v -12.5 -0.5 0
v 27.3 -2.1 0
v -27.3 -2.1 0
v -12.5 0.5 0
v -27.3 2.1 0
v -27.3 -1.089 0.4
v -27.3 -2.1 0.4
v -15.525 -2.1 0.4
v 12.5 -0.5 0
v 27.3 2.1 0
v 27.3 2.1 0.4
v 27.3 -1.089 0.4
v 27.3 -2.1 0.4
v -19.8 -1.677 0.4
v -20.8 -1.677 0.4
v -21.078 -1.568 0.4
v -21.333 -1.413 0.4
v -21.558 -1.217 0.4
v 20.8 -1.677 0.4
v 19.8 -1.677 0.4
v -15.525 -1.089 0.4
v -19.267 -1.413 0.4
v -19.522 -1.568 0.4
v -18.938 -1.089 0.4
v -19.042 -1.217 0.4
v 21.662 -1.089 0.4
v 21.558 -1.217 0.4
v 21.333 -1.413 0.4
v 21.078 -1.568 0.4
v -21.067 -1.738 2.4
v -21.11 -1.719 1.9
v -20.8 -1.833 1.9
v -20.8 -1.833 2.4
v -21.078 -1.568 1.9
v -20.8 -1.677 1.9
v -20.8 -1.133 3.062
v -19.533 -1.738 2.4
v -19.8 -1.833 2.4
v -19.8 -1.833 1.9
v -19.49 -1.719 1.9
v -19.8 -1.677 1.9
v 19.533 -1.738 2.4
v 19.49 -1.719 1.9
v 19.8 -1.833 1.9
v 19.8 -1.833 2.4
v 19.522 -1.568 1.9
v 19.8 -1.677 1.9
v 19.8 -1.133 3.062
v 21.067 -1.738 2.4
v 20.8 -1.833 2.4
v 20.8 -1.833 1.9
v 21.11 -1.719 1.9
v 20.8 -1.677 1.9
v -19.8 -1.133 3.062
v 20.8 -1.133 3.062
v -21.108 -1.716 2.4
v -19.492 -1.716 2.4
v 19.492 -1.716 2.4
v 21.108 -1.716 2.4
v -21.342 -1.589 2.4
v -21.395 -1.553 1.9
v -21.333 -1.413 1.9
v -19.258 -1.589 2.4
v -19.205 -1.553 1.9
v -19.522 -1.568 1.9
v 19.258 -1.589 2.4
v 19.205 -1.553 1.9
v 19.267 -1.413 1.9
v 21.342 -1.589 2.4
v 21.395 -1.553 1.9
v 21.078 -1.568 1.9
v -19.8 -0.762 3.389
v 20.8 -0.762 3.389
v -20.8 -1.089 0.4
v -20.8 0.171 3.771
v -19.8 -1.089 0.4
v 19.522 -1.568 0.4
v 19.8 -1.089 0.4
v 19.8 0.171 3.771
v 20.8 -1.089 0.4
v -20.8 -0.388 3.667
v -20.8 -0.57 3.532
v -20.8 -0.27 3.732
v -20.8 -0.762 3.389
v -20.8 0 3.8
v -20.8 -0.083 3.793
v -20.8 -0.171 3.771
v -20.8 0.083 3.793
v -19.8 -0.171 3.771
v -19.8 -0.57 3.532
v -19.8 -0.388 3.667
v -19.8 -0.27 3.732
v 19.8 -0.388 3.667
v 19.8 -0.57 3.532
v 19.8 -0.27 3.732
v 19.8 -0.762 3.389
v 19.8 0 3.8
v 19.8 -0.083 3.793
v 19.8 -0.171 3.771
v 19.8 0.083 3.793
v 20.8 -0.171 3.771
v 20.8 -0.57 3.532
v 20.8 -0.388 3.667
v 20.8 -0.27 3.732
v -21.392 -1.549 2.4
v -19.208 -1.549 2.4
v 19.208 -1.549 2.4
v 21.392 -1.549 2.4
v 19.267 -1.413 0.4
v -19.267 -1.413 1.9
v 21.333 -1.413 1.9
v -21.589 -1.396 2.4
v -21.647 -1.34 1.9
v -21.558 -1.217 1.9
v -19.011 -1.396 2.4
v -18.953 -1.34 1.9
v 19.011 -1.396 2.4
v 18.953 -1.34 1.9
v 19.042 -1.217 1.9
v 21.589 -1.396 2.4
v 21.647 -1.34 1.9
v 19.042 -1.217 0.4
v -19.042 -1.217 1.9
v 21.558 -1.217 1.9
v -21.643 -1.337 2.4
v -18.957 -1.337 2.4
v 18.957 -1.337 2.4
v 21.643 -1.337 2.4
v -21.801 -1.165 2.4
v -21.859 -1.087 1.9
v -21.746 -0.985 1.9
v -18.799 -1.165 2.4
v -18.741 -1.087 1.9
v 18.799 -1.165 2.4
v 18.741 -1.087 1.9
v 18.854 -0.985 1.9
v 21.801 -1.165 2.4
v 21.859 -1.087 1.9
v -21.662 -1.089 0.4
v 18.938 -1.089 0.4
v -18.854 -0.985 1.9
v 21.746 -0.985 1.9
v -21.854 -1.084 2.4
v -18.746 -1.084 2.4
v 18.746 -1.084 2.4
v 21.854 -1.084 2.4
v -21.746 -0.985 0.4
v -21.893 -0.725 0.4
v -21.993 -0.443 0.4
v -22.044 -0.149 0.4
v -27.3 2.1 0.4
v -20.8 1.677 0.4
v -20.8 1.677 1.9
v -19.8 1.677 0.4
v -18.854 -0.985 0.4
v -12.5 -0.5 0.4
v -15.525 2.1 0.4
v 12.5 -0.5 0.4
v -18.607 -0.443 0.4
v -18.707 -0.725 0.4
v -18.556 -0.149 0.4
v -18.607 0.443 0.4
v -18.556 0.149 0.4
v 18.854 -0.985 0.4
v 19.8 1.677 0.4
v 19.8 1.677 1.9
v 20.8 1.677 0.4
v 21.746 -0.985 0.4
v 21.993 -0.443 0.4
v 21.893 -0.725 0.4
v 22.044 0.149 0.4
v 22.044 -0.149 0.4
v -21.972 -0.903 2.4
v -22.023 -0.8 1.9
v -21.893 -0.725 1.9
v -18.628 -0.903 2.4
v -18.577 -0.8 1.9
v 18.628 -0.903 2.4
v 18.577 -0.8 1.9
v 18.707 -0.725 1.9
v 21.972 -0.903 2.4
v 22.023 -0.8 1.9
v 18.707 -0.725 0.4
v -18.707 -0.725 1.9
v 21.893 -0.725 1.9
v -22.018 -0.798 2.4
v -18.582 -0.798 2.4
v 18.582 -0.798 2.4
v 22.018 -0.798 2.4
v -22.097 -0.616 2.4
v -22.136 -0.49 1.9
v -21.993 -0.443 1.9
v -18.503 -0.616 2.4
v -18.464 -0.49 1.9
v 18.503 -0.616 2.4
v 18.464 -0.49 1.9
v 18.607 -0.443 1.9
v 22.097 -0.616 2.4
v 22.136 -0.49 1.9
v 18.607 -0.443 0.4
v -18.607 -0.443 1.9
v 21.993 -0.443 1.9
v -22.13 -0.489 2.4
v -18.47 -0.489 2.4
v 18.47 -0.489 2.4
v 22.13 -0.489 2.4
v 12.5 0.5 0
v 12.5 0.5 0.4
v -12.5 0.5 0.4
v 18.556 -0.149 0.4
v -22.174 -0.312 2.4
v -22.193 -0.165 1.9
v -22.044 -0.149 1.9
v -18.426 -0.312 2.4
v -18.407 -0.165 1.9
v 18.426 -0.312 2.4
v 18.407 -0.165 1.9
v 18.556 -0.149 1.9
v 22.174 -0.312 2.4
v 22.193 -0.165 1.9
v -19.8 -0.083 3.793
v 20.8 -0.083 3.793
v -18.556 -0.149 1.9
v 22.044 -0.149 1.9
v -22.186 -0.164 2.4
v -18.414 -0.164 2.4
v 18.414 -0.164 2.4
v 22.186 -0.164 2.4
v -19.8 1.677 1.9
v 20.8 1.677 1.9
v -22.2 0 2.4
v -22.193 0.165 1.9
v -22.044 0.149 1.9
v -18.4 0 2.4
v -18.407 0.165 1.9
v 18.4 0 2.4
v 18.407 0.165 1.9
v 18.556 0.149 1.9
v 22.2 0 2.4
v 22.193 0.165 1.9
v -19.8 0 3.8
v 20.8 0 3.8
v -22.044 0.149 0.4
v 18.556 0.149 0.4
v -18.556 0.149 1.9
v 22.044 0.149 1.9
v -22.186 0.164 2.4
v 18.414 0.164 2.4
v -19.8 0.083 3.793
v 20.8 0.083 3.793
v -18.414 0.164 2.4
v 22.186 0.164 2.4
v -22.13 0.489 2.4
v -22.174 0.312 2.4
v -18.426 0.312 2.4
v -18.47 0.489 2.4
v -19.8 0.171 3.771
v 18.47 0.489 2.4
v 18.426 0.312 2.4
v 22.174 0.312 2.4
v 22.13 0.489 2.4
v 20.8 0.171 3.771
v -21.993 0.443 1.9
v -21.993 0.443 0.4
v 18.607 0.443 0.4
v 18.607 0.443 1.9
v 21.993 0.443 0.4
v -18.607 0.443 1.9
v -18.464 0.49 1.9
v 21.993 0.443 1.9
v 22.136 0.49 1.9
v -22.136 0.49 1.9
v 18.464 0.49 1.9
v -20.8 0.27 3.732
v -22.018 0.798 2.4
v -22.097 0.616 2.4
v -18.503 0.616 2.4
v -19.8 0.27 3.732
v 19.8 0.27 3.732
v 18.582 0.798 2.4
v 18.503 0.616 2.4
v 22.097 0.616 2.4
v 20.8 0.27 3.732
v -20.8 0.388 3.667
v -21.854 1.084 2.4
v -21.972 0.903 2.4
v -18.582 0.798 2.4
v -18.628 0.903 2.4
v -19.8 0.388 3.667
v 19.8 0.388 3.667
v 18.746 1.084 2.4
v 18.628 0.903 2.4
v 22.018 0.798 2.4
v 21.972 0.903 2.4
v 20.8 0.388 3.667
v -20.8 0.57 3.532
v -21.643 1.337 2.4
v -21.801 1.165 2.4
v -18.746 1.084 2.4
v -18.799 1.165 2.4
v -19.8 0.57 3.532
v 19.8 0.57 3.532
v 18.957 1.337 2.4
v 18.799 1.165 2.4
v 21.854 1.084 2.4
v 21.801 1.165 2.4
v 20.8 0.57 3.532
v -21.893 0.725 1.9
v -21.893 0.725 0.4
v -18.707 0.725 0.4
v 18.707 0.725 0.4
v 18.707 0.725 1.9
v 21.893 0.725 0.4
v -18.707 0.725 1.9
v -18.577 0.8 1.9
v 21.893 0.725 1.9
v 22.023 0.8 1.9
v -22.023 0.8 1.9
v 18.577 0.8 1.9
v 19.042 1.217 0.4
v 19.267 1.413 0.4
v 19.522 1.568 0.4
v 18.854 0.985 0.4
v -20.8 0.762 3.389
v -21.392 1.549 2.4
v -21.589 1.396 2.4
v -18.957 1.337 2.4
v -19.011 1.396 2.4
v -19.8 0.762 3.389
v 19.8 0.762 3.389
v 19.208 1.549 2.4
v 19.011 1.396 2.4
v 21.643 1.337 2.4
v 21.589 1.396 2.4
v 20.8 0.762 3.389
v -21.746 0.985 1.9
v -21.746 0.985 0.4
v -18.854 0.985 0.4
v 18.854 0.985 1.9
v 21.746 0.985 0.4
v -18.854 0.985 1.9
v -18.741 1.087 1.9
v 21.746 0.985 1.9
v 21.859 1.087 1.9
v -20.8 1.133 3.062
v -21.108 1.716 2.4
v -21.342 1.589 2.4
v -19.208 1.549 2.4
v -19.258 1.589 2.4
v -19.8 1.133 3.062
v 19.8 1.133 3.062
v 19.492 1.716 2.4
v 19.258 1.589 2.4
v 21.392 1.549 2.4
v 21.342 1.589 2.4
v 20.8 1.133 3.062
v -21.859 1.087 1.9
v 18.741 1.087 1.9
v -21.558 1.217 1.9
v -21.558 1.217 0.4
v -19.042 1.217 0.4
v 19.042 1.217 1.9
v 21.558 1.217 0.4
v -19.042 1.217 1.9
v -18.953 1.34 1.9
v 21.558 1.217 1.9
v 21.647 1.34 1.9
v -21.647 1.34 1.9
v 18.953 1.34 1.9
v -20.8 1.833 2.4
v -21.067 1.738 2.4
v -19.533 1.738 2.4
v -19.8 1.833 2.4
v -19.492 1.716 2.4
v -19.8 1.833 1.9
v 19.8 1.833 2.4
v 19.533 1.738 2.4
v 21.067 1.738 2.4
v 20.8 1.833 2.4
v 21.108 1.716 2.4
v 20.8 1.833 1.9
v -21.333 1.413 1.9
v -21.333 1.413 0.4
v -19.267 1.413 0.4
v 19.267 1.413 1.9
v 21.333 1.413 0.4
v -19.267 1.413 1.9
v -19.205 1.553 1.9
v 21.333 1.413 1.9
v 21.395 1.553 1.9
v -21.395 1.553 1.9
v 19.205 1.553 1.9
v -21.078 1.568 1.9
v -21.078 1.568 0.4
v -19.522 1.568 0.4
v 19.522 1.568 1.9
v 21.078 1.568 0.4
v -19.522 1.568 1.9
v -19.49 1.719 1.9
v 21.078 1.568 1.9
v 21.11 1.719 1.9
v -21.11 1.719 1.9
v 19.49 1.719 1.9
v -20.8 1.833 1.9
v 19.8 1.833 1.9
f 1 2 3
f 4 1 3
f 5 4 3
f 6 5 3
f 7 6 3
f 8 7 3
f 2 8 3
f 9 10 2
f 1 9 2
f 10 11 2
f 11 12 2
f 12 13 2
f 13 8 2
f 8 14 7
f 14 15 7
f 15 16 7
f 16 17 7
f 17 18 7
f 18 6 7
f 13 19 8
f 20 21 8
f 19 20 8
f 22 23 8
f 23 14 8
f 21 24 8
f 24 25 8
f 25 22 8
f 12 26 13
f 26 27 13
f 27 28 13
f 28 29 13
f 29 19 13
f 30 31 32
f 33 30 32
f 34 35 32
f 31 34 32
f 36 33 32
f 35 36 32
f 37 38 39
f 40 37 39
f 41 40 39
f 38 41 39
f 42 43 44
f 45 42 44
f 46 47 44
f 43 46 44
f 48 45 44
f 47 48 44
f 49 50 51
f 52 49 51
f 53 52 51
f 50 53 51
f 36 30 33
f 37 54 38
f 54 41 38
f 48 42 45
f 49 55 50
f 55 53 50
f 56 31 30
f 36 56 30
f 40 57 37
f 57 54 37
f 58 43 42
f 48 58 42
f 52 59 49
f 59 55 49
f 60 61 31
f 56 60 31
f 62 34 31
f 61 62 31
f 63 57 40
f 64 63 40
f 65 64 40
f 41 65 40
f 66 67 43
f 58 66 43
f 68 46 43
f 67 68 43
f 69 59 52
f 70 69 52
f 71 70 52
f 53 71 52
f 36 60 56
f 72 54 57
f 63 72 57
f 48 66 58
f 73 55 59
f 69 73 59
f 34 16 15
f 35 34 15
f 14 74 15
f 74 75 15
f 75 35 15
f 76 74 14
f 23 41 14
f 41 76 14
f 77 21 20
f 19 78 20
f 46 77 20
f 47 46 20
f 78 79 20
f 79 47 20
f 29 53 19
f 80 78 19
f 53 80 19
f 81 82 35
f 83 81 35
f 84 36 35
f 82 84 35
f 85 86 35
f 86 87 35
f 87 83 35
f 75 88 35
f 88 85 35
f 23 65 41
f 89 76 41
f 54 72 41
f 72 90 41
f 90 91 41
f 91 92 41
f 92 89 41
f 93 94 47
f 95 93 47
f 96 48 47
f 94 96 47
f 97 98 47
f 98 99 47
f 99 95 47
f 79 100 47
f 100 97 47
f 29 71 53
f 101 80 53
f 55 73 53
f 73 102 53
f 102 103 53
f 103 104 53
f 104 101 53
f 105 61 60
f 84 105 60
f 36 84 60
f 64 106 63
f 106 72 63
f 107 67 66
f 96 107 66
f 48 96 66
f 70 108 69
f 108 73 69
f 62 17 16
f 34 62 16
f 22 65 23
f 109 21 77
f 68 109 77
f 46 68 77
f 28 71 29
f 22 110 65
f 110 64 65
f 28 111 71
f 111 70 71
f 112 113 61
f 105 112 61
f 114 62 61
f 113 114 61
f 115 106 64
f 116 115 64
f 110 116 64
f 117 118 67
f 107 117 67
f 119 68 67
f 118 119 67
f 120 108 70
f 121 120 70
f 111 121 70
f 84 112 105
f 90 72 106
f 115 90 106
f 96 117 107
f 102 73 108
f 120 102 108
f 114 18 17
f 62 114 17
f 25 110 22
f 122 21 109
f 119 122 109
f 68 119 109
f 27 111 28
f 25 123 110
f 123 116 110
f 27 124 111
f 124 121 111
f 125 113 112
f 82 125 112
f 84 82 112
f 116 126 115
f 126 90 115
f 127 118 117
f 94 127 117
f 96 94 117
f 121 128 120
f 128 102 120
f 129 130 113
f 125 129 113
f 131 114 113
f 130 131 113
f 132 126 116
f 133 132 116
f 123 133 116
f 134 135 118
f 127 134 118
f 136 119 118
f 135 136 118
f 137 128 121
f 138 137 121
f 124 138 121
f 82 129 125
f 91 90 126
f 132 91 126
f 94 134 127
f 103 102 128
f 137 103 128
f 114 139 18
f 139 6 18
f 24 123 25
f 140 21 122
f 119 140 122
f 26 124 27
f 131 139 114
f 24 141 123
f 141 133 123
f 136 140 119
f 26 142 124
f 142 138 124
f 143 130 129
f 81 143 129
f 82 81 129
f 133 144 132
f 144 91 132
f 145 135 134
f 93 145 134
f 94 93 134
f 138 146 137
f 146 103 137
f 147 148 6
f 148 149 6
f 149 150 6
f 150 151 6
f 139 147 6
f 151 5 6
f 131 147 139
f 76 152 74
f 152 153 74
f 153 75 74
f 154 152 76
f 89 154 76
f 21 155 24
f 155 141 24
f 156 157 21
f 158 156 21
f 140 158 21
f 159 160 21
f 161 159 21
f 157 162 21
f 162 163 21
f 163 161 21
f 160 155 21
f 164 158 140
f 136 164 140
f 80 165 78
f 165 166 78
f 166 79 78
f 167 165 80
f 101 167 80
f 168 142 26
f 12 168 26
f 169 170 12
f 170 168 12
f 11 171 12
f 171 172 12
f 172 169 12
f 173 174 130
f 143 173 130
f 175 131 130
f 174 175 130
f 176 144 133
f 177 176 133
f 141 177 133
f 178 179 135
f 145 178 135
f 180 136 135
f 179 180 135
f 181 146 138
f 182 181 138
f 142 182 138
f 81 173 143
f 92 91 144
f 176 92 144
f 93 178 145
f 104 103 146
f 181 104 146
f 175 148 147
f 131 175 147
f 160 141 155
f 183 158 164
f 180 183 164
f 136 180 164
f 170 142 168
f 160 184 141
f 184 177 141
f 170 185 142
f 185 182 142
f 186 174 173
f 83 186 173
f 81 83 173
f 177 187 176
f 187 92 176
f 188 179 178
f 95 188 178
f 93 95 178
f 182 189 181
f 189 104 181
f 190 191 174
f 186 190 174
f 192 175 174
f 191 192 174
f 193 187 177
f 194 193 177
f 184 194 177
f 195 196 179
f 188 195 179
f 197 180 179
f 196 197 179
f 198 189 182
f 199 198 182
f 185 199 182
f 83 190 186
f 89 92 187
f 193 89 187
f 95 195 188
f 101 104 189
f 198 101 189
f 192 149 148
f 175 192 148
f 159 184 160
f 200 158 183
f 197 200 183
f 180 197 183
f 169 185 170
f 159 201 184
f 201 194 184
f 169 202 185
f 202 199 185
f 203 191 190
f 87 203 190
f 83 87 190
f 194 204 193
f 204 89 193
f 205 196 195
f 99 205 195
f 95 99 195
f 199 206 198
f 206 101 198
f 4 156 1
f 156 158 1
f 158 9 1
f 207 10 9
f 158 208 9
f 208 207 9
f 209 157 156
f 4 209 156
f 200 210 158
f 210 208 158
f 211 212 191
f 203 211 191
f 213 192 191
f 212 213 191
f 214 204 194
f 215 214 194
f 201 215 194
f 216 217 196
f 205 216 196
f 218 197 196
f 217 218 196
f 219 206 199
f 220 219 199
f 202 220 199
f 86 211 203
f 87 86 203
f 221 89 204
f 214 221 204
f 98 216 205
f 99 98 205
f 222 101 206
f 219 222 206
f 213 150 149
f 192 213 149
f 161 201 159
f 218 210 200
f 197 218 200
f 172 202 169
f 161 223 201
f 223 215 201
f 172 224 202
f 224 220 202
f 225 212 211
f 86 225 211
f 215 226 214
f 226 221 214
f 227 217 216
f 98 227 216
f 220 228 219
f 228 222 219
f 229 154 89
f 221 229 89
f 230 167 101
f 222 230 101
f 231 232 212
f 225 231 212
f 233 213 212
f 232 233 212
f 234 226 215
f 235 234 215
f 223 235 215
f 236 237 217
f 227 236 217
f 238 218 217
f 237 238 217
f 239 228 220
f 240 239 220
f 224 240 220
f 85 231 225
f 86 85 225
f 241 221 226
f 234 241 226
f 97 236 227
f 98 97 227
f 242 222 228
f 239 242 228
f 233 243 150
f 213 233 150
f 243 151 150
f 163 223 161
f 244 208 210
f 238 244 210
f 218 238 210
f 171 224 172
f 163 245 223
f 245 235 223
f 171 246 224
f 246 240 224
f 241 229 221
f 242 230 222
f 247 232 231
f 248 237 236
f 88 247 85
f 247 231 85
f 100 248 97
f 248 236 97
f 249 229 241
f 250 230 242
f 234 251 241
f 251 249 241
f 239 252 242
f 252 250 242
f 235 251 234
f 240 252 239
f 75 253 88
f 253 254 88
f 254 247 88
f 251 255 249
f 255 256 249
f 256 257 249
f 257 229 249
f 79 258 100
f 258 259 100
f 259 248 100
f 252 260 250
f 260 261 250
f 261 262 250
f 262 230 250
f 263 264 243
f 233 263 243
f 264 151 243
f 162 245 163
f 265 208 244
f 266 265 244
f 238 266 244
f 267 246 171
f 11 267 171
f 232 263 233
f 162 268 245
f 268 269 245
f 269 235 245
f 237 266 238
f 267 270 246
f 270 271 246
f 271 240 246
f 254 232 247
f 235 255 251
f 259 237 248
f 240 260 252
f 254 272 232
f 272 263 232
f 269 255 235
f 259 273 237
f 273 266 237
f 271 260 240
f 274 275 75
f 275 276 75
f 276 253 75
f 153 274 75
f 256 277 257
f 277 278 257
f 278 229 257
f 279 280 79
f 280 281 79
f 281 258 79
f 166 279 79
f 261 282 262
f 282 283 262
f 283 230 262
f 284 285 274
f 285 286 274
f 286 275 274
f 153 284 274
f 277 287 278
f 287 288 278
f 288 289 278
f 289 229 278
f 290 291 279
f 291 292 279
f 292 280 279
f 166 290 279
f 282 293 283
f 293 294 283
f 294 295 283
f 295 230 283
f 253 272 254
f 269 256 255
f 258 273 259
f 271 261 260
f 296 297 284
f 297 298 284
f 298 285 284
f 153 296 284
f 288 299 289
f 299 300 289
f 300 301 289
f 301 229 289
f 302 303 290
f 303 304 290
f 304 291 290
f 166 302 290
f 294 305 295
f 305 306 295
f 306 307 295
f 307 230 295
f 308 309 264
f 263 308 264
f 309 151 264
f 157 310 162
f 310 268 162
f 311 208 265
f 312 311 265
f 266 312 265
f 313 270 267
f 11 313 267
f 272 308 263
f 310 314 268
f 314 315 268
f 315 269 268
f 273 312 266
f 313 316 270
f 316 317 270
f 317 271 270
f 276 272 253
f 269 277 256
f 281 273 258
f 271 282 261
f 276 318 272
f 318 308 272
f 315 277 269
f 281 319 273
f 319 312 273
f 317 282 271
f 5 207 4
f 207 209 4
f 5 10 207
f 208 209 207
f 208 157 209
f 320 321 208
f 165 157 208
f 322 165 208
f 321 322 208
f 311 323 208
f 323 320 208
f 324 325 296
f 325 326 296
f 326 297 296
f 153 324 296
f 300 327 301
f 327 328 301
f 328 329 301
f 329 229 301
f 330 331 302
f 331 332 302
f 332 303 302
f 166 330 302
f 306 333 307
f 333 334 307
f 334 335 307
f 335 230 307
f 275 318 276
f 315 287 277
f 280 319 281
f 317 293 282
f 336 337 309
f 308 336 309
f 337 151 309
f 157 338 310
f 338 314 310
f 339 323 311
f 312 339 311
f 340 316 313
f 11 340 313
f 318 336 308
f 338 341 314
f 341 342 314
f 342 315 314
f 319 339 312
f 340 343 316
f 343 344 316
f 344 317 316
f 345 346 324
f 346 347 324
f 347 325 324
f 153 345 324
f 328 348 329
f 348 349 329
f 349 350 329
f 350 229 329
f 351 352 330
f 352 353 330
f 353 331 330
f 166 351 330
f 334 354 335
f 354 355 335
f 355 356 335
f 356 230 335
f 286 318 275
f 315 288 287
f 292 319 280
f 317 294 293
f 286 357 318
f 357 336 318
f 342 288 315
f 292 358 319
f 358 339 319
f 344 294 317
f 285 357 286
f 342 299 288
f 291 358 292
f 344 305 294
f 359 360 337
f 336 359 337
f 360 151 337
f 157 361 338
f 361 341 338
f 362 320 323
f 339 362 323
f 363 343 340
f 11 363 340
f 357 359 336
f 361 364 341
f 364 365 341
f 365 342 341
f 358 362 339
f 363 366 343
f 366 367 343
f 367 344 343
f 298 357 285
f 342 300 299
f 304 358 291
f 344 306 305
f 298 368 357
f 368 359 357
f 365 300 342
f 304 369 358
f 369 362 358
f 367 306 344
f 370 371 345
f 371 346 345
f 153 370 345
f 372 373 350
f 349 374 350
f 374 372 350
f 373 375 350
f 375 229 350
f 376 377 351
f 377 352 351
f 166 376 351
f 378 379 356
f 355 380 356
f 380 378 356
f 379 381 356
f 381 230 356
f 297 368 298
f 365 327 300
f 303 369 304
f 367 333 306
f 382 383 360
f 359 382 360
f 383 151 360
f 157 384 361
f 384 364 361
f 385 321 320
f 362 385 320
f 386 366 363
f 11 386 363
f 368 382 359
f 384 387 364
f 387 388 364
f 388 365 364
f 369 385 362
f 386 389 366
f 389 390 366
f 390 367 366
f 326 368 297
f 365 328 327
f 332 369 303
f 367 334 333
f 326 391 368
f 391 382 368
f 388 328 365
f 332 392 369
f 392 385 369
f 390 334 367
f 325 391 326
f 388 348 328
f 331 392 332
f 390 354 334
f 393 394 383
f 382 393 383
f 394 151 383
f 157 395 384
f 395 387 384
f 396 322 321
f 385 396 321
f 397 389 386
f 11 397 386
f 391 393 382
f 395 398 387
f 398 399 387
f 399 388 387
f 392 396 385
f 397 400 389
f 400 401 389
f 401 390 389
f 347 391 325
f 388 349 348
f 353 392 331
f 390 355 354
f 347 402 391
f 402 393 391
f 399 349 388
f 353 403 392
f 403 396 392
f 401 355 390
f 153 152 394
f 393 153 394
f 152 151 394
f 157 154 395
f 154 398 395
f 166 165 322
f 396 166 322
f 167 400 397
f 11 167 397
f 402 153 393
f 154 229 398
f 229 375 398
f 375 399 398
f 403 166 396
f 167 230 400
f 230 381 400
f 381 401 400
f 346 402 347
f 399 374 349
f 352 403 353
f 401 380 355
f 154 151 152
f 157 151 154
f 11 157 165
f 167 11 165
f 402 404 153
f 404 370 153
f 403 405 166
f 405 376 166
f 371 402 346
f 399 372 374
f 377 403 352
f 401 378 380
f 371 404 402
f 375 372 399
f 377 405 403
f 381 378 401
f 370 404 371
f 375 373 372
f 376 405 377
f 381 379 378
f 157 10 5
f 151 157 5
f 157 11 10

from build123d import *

# Parameters (mm, degrees)
SKICA2_W                 = 54.6
SKICA2_H                 = 4.2
SKICA2_W_2               = 25
SKICA2_H_2               = 1
P_IDAT_VYSUNUT_M2_DEPTH  = 0.4
SKICA3_R                 = 1.75
P_IDAT_VYSUNUT_M3_DEPTH  = 1.5
SKICA5_R                 = 1.9
P_IDAT_VYSUNUT_M5_DEPTH  = 2
ZKOSEN_2_SIZE            = 1.5
SKICA7_W                 = 1
SKICA7_H                 = 5
ODEBRAT_VYSUNUT_M1_DEPTH = 3.5


with BuildPart() as part:
    # Skica2 → Přidat vysunutím2 (new body)
    with BuildSketch(Plane.XY):
        Rectangle(SKICA2_W, SKICA2_H)
        Rectangle(SKICA2_W_2, SKICA2_H_2, mode=Mode.SUBTRACT)
    extrude(amount=P_IDAT_VYSUNUT_M2_DEPTH)

    # Skica3 → Přidat vysunutím3 (add)
    with BuildSketch(Plane.XY.offset(0.4)):
        with Locations((-20.3, 0)):
            Circle(SKICA3_R)
        with Locations((20.3, 0)):
            Circle(SKICA3_R)
    extrude(amount=P_IDAT_VYSUNUT_M3_DEPTH)

    # Skica5 → Přidat vysunutím5 (add)
    with BuildSketch(Plane.XY.offset(1.9)):
        with Locations((-20.3, 0)):
            Circle(SKICA5_R)
        with Locations((20.3, 0)):
            Circle(SKICA5_R)
    extrude(amount=P_IDAT_VYSUNUT_M5_DEPTH)

    # Zkosení2
    zkosen_2_edges = [part.edges().sort_by_distance(p)[0] for p in [
        (-22.2, 0, 3.9),
        (18.4, 0, 3.9),
    ]]
    chamfer(zkosen_2_edges, length=ZKOSEN_2_SIZE)

    # Skica7 → Odebrat vysunutím1 (cut)
    with BuildSketch(Plane.XY.offset(3.9)):
        with Locations((-20.3, 0)):
            Rectangle(SKICA7_W, SKICA7_H)
        with Locations((20.3, 0)):
            Rectangle(SKICA7_W, SKICA7_H)
    extrude(amount=-ODEBRAT_VYSUNUT_M1_DEPTH, mode=Mode.SUBTRACT)


solid = part.part
